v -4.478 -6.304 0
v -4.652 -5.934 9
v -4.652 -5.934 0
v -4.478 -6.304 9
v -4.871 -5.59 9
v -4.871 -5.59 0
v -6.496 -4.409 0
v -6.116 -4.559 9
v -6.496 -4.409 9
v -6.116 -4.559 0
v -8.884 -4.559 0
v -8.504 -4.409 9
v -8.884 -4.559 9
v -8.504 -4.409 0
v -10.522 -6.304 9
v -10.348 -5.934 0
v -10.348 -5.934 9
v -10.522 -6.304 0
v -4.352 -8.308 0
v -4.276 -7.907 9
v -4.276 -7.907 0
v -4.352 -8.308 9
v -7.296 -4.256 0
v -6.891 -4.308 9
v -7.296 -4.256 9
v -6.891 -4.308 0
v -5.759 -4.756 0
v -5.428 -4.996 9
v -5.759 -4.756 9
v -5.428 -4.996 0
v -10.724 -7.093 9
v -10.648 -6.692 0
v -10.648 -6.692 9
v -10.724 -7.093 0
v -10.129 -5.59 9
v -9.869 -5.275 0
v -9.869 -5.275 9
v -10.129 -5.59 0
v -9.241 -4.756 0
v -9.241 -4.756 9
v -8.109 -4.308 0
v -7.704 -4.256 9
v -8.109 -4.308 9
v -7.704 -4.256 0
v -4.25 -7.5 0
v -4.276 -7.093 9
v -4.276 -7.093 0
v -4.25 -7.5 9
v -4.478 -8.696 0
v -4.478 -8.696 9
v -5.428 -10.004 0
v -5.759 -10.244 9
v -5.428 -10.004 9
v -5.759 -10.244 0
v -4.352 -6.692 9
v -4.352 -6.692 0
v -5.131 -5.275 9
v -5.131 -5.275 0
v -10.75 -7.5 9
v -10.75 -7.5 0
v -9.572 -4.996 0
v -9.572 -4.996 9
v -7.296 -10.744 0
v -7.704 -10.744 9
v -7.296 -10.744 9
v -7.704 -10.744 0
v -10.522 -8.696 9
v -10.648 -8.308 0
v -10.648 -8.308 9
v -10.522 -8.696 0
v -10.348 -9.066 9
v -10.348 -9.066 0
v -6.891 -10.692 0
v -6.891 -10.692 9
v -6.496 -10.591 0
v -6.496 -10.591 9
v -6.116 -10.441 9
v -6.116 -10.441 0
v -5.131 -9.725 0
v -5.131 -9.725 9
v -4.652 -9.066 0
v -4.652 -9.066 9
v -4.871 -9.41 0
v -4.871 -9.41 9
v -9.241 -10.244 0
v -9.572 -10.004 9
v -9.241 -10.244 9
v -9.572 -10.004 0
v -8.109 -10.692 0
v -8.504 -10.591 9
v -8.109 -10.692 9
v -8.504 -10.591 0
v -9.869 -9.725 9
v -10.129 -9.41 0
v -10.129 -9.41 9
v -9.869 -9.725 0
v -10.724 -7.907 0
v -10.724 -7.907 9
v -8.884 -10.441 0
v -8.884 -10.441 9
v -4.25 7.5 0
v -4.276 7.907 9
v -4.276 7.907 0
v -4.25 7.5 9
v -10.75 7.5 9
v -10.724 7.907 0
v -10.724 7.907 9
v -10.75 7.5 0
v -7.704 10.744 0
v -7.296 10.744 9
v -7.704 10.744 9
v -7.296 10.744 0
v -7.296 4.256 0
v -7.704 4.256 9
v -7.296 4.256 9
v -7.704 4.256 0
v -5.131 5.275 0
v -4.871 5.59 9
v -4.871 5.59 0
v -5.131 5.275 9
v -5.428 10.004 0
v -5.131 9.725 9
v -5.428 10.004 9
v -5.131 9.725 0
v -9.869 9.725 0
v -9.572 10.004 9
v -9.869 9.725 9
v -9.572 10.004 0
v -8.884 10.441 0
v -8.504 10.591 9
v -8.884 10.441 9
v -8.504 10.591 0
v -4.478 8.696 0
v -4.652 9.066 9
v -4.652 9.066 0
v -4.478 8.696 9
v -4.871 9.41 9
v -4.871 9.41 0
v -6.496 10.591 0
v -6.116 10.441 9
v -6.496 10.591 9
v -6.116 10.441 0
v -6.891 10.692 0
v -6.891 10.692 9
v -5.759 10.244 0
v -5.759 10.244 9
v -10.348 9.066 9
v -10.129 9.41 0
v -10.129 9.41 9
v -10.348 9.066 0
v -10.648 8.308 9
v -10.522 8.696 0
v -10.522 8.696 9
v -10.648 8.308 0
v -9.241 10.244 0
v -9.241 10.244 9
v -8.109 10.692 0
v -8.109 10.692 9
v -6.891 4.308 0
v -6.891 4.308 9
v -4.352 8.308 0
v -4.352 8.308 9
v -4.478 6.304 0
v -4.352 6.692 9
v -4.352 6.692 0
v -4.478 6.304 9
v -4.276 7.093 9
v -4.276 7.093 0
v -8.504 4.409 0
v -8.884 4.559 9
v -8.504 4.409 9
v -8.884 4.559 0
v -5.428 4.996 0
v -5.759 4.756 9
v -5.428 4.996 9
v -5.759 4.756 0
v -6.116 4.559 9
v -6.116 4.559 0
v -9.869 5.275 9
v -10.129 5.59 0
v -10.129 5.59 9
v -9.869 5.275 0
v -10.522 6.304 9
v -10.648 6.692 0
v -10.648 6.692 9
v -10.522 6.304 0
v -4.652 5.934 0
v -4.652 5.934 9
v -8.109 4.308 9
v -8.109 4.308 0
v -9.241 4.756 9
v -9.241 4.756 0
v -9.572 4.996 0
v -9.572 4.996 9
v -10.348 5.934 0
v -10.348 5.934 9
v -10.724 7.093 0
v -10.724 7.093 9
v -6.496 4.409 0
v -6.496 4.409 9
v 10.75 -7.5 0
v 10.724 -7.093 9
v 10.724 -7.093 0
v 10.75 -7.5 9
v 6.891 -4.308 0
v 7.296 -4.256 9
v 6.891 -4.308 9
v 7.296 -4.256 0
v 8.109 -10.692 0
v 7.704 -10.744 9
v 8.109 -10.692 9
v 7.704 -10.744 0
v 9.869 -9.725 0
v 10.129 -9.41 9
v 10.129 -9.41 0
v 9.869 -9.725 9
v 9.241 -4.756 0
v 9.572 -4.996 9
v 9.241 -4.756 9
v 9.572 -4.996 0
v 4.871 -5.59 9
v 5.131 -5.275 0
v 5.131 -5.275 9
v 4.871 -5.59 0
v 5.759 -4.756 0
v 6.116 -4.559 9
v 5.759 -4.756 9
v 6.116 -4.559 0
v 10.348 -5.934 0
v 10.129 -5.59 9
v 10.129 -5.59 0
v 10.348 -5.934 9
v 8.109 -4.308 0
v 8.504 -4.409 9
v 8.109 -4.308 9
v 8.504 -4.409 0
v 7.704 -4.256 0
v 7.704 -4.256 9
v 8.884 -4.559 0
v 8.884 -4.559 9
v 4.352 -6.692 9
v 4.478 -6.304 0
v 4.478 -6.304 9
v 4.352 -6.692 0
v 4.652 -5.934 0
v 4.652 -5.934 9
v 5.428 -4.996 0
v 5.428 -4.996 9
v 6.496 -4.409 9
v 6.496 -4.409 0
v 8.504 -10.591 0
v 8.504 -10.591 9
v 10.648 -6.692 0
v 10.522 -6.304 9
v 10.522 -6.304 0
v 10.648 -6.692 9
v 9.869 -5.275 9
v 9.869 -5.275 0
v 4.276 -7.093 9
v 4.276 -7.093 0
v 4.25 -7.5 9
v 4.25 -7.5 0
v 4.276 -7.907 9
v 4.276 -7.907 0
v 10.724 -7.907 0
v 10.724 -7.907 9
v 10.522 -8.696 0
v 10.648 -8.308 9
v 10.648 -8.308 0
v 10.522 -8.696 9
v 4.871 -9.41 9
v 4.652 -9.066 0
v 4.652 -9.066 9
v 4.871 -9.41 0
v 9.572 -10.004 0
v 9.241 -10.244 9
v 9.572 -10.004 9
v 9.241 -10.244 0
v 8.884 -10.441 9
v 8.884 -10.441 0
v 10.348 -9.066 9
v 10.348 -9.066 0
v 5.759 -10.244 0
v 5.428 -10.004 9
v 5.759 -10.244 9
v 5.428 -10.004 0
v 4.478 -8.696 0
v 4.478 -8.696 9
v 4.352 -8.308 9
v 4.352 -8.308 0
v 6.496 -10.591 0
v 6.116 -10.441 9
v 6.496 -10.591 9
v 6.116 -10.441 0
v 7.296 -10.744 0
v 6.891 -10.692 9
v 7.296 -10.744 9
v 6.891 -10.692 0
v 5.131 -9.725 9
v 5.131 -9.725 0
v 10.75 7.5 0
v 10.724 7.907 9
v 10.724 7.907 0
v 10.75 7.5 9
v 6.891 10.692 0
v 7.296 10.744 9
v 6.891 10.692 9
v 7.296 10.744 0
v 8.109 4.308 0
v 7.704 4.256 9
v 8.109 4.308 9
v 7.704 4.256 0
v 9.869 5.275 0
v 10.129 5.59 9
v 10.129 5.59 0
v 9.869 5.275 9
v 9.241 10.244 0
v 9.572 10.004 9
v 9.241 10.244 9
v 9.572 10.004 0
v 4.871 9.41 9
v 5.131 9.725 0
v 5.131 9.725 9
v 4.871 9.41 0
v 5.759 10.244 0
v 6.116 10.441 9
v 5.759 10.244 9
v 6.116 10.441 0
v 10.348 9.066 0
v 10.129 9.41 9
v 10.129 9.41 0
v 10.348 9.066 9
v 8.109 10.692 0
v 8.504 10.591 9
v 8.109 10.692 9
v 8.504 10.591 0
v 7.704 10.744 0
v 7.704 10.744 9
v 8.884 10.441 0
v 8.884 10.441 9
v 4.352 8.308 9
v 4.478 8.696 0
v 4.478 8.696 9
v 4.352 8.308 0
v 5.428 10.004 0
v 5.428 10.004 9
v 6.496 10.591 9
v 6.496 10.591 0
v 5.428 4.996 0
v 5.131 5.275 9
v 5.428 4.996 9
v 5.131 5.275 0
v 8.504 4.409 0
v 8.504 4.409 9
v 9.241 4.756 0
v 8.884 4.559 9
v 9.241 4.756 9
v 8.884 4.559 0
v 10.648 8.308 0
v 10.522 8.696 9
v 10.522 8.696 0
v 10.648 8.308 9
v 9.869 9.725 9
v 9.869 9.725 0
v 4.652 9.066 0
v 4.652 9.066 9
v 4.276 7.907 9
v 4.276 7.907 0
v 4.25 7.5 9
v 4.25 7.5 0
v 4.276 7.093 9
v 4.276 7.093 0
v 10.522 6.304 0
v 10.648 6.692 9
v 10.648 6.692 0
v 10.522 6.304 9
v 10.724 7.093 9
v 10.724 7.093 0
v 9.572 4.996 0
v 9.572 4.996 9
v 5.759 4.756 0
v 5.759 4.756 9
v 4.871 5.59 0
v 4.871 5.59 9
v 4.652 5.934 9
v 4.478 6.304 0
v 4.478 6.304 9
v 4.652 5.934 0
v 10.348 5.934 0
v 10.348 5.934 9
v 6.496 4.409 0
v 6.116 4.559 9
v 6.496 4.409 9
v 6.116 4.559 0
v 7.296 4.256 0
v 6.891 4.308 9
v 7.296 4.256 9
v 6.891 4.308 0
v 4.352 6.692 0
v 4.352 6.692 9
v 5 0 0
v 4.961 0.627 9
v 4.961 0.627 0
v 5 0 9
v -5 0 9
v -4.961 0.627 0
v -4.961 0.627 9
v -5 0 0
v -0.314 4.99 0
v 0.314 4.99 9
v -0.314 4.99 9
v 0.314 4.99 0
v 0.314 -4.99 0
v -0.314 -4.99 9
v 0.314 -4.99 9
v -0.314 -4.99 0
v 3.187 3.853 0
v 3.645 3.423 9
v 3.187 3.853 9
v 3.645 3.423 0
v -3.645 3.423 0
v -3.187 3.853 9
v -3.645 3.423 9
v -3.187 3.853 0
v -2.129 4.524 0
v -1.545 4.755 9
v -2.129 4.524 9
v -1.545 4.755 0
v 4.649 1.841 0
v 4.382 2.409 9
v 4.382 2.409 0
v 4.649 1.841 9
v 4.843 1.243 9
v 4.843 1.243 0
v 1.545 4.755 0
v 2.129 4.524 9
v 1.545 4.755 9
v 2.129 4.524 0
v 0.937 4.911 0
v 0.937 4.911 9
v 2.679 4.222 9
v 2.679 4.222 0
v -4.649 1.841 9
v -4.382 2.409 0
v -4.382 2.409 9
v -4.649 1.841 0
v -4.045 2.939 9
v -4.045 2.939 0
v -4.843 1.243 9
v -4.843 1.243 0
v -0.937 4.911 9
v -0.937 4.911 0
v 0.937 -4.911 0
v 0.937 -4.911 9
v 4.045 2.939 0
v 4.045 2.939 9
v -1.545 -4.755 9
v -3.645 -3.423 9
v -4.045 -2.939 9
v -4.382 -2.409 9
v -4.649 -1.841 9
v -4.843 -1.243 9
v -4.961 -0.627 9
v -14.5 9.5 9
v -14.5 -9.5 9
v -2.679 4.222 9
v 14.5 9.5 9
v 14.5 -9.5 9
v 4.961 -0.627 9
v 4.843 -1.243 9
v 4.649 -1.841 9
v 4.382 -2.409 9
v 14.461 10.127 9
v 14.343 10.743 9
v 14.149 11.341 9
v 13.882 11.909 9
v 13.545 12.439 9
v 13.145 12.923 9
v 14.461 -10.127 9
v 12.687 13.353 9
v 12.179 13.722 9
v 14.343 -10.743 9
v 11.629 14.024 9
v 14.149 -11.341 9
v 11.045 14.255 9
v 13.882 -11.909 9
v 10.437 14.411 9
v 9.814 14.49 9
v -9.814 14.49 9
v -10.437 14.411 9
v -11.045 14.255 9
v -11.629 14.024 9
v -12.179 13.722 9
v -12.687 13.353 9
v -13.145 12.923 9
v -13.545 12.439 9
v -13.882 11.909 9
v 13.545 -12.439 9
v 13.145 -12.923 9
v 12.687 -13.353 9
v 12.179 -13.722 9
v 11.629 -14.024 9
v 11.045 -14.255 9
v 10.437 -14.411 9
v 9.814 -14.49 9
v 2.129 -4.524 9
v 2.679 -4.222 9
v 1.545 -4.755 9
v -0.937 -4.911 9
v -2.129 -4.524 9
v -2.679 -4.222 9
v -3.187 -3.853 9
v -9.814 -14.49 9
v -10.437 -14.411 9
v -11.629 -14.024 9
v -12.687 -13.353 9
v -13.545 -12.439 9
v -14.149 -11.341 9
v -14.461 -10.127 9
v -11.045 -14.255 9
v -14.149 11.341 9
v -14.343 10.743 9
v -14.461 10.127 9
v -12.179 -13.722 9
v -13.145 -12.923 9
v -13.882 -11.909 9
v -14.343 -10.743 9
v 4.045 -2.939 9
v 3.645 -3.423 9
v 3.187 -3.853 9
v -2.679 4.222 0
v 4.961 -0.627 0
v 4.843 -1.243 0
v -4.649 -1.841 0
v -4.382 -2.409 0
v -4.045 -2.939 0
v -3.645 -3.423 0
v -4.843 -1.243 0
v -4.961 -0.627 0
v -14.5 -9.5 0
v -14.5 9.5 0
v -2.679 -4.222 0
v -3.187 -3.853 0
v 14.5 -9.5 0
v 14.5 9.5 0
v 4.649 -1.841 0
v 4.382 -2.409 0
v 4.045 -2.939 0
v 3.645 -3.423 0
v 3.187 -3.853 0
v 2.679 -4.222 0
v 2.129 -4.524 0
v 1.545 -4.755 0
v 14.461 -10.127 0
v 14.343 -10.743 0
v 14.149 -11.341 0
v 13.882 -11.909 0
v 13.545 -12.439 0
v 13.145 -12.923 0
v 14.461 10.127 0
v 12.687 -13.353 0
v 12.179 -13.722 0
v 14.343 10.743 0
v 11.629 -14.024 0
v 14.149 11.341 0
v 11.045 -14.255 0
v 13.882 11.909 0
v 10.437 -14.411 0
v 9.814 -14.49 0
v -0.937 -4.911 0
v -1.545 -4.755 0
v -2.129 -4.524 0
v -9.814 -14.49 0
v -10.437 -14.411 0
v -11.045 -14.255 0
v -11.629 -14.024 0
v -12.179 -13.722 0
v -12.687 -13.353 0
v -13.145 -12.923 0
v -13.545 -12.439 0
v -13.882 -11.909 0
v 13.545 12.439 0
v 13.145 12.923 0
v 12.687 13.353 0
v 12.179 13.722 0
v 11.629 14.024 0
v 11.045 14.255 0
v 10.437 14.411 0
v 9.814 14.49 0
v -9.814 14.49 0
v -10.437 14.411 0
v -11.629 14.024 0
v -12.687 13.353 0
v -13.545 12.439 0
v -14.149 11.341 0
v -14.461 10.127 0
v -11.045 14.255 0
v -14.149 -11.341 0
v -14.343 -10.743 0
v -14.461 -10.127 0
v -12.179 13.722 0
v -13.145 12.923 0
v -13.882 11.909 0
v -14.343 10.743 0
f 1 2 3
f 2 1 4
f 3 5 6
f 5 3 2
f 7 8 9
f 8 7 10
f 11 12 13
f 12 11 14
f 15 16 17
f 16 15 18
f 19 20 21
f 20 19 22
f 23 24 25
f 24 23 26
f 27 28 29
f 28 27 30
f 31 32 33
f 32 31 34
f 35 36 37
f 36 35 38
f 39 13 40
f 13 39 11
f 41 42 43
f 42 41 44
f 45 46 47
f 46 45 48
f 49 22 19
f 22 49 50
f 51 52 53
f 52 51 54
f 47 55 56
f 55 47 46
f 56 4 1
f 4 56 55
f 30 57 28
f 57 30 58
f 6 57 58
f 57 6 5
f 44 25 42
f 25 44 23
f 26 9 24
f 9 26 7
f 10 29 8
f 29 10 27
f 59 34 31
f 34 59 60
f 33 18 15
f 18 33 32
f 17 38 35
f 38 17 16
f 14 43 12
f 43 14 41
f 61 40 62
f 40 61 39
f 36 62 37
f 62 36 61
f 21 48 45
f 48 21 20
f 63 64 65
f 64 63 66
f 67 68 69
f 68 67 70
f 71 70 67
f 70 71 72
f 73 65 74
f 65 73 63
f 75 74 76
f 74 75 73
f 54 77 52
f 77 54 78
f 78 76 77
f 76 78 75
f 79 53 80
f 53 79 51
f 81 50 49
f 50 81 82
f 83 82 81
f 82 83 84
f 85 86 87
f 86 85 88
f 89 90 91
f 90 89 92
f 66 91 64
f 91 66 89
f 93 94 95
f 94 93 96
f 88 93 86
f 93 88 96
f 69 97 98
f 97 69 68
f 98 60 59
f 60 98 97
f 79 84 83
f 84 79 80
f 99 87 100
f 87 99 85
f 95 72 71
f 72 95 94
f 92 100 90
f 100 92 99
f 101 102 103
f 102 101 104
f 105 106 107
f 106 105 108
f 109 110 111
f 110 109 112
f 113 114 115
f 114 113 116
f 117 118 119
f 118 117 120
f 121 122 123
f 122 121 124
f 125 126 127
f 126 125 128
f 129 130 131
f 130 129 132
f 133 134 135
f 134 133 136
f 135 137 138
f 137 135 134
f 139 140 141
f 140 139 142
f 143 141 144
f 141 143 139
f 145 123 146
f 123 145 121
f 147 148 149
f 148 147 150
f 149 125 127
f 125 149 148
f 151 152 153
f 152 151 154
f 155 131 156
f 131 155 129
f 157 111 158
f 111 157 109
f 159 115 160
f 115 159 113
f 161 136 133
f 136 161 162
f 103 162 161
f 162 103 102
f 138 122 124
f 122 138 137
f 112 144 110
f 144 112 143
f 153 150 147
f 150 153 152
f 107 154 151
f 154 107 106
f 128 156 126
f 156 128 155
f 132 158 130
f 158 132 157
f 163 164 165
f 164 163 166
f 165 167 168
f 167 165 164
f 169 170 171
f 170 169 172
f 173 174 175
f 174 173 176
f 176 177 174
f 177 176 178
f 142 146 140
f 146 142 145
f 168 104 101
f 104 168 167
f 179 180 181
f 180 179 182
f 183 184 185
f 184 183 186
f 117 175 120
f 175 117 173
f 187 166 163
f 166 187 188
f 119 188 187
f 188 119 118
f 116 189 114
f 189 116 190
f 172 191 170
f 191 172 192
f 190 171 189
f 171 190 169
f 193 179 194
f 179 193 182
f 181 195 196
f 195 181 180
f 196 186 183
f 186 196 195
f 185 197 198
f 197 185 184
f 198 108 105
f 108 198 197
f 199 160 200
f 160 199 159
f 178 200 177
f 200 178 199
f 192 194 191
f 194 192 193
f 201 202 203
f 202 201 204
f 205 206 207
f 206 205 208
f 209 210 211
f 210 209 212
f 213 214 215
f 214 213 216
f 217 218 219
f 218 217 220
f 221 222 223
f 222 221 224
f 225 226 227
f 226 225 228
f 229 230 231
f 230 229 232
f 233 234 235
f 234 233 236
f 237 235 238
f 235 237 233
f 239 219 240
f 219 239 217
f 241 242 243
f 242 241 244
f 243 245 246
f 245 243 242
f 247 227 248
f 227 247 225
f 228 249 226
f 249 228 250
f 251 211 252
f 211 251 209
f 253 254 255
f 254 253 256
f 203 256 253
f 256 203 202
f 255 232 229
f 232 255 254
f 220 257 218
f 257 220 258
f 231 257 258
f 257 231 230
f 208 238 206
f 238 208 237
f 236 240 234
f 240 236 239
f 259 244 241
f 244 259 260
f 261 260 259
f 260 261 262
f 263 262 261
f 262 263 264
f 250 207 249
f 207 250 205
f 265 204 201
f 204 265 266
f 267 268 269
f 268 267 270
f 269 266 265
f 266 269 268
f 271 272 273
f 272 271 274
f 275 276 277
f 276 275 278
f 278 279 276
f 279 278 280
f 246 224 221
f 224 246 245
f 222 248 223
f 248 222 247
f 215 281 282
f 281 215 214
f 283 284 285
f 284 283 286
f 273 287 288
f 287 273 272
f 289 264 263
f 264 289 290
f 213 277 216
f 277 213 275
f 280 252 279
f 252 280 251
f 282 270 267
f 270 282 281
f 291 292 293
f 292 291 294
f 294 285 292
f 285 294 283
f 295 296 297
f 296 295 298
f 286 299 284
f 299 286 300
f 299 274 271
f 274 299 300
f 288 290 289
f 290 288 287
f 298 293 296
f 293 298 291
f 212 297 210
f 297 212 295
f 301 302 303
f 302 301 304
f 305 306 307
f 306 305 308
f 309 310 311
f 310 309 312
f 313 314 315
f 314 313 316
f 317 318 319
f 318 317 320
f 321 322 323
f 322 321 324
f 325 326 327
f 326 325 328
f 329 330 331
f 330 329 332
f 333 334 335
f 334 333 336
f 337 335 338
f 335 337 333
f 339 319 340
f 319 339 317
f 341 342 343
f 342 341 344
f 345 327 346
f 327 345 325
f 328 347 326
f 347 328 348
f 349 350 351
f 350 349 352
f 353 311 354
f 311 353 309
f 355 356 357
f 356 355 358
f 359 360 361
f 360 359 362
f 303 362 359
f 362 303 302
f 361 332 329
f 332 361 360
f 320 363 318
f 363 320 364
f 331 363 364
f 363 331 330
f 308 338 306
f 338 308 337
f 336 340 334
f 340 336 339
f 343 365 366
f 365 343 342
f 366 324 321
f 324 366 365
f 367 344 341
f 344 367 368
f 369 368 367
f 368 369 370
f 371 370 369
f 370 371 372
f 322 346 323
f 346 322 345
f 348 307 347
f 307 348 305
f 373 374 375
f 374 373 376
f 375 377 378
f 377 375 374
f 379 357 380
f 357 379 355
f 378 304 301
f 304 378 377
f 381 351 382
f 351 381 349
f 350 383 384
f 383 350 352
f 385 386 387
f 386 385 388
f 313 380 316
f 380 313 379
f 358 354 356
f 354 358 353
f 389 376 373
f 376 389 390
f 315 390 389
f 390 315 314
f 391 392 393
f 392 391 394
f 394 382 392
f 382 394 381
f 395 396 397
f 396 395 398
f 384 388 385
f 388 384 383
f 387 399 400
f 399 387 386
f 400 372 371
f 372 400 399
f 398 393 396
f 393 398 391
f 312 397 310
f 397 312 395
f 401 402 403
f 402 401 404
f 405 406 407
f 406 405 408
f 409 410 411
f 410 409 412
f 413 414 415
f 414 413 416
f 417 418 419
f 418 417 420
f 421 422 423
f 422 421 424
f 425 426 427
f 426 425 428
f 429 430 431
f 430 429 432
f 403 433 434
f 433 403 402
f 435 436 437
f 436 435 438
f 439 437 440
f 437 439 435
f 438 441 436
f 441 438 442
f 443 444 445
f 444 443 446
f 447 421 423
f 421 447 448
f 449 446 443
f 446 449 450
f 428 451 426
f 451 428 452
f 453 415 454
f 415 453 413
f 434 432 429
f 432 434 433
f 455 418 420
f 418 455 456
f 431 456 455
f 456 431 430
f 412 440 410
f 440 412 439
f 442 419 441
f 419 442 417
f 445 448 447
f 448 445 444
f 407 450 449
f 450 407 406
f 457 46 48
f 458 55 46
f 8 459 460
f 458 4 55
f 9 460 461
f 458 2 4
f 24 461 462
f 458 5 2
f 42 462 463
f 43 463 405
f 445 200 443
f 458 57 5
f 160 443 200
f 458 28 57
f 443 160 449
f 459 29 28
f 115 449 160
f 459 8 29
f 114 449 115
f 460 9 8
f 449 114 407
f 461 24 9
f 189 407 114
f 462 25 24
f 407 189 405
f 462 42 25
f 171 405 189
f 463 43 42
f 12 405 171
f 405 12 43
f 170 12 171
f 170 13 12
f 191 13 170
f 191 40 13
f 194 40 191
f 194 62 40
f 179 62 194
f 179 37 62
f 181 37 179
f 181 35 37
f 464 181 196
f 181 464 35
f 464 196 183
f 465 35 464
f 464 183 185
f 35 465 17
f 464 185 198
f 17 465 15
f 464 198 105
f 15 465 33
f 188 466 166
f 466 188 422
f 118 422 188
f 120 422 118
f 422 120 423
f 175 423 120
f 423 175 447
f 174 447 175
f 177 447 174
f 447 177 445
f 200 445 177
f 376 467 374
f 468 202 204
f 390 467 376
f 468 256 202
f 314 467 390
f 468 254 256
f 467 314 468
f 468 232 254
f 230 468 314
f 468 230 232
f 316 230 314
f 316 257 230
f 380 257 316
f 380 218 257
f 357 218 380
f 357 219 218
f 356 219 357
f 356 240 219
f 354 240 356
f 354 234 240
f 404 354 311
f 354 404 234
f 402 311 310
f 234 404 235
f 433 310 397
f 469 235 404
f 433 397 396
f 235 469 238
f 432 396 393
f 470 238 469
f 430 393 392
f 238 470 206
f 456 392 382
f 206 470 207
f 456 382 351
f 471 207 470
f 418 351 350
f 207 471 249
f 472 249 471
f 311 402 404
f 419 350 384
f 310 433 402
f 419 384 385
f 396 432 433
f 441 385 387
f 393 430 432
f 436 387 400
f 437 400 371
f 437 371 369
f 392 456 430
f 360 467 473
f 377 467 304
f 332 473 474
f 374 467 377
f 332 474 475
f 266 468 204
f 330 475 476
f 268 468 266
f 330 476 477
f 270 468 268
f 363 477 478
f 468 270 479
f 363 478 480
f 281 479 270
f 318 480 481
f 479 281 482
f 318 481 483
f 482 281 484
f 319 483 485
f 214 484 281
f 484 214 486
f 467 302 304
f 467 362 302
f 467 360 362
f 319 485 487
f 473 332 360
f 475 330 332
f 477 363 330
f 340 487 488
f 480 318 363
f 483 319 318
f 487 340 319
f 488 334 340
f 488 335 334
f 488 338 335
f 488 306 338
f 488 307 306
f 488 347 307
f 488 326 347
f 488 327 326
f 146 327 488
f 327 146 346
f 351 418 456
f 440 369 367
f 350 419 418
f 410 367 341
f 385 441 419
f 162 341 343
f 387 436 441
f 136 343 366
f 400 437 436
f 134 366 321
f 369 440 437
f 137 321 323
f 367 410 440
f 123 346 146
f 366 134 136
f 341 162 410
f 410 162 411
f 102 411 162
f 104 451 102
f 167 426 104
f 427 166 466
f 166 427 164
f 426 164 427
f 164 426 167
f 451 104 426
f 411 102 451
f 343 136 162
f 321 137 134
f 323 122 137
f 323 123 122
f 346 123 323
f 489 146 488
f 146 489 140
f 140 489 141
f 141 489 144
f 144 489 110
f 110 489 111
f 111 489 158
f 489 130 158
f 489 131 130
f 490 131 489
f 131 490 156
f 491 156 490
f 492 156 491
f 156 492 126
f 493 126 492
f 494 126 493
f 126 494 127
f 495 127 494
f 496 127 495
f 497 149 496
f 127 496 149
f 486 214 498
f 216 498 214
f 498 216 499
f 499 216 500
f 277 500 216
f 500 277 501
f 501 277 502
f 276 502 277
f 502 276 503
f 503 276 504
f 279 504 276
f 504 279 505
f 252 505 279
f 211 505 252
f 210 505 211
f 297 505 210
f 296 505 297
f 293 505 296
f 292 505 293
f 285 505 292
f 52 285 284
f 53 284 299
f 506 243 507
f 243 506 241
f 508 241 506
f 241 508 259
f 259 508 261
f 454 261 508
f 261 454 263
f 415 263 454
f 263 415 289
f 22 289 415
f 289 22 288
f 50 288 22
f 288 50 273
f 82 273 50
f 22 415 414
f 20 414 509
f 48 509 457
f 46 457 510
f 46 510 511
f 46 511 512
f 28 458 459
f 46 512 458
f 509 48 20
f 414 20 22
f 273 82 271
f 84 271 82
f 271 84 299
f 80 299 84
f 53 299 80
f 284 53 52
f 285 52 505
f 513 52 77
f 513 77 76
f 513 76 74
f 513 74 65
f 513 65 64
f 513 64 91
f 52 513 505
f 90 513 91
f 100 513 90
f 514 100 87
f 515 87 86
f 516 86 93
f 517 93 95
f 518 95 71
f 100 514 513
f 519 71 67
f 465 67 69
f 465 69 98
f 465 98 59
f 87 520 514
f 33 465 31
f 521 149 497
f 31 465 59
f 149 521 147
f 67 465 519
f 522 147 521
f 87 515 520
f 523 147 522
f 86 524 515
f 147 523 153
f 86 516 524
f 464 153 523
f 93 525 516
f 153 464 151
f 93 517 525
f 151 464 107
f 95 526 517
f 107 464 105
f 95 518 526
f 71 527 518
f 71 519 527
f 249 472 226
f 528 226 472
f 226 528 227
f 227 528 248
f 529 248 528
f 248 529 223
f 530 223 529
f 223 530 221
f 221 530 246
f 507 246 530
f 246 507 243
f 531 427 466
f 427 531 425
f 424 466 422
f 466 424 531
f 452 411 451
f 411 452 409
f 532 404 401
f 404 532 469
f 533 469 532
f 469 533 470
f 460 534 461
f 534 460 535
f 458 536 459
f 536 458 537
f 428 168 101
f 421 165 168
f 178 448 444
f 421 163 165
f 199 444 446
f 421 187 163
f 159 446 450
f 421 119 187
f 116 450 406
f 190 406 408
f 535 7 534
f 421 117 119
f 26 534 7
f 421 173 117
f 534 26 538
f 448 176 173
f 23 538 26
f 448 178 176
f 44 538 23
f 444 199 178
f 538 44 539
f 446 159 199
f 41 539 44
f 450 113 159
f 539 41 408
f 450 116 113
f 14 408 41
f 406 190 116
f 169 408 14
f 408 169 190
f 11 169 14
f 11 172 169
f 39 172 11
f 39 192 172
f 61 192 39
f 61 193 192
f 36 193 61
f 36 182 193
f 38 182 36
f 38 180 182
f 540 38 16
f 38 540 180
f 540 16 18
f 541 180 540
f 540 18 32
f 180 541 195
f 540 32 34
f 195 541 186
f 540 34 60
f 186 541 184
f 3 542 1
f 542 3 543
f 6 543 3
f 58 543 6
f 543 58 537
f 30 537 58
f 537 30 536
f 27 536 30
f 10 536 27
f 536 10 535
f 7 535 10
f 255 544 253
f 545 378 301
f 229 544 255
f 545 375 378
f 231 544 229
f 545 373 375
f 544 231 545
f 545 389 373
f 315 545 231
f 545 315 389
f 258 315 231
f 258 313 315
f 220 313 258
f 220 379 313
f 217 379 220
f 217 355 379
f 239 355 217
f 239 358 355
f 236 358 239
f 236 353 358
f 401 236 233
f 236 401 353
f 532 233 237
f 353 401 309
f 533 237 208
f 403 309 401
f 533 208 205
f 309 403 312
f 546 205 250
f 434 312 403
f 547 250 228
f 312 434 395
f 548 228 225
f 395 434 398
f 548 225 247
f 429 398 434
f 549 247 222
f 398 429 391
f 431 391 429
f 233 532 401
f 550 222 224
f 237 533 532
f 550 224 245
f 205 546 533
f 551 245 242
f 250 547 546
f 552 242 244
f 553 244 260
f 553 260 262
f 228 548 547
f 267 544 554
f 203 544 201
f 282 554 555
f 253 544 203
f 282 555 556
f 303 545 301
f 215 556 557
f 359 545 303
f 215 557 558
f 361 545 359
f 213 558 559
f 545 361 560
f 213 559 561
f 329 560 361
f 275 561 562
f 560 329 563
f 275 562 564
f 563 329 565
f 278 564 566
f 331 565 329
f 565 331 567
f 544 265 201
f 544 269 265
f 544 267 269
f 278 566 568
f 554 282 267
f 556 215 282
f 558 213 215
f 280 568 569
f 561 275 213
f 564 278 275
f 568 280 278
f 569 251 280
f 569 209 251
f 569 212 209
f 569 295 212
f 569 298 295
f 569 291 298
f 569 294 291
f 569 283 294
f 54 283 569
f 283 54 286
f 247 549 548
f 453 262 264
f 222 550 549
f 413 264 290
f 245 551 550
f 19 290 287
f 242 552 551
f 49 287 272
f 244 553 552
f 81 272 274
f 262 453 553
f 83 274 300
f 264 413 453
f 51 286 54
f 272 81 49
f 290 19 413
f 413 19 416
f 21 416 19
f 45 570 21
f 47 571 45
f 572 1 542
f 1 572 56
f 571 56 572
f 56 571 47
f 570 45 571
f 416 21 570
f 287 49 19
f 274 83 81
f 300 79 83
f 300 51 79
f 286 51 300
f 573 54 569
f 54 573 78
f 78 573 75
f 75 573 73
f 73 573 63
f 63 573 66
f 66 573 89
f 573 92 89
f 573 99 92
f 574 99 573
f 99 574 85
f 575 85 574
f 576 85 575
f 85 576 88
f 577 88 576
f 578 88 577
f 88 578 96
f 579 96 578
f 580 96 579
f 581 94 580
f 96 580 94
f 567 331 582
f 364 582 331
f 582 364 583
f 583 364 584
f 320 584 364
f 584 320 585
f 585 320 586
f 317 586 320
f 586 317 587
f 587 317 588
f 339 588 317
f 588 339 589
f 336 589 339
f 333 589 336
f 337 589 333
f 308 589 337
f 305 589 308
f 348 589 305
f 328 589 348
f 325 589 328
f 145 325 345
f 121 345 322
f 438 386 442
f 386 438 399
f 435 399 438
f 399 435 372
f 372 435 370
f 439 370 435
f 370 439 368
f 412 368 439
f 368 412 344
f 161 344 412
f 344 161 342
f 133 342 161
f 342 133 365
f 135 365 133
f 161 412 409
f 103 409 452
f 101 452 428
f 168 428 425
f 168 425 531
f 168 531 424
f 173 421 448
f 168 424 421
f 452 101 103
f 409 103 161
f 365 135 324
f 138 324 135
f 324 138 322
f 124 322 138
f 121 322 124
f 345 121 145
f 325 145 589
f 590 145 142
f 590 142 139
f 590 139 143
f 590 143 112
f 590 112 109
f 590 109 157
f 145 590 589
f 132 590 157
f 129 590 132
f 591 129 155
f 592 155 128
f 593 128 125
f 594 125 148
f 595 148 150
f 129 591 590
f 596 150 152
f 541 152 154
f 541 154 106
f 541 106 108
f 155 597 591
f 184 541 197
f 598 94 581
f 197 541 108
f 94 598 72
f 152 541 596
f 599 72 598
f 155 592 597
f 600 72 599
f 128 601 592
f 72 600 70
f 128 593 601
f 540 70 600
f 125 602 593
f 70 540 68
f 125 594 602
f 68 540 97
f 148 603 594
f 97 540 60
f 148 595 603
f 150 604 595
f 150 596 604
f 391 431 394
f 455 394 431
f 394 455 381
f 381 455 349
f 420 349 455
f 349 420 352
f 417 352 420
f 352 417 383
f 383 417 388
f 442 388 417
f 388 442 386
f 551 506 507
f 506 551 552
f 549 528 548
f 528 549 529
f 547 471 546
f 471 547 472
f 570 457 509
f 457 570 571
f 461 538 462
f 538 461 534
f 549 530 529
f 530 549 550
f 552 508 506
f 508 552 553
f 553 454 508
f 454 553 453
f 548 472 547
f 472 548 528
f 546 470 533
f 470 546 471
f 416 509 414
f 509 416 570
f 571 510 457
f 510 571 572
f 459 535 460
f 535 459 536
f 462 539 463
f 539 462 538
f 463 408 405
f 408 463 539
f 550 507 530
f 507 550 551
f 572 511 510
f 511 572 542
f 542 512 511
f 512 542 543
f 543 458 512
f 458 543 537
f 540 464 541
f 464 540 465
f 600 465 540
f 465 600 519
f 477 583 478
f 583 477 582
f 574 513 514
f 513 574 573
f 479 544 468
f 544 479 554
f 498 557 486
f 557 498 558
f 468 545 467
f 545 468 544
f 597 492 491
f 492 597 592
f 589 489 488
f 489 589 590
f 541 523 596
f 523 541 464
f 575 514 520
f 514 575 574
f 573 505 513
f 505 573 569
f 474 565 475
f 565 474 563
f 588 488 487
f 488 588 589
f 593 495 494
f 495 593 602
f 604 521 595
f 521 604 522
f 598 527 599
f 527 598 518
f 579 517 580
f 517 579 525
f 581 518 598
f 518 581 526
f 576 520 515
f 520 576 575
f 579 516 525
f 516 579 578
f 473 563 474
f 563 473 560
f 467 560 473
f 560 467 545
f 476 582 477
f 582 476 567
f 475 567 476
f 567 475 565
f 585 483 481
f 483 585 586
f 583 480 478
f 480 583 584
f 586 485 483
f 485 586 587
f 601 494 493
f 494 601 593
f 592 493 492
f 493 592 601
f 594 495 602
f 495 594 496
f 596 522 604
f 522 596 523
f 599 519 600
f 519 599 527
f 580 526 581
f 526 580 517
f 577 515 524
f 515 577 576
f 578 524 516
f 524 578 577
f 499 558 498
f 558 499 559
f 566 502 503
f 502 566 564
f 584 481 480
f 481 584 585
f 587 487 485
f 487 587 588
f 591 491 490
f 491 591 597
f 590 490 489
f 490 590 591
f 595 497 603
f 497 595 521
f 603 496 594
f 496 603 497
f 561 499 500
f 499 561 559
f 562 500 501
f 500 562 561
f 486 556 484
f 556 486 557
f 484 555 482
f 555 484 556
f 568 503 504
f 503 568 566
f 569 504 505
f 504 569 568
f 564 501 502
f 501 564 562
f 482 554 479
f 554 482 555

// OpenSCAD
$fn = 50;


difference() {
	union() {
		hull() {
			translate(v = [-9.5000000000, 9.5000000000, 0]) {
				cylinder(h = 9, r = 5);
			}
			translate(v = [9.5000000000, 9.5000000000, 0]) {
				cylinder(h = 9, r = 5);
			}
			translate(v = [-9.5000000000, -9.5000000000, 0]) {
				cylinder(h = 9, r = 5);
			}
			translate(v = [9.5000000000, -9.5000000000, 0]) {
				cylinder(h = 9, r = 5);
			}
		}
	}
	union() {
		#translate(v = [-7.5000000000, -7.5000000000, -100.0000000000]) {
			cylinder(h = 200, r = 3.2500000000);
		}
		#translate(v = [-7.5000000000, 7.5000000000, -100.0000000000]) {
			cylinder(h = 200, r = 3.2500000000);
		}
		#translate(v = [7.5000000000, -7.5000000000, -100.0000000000]) {
			cylinder(h = 200, r = 3.2500000000);
		}
		#translate(v = [7.5000000000, 7.5000000000, -100.0000000000]) {
			cylinder(h = 200, r = 3.2500000000);
		}
		#cylinder(h = 9, r = 5.0000000000);
	}
}
